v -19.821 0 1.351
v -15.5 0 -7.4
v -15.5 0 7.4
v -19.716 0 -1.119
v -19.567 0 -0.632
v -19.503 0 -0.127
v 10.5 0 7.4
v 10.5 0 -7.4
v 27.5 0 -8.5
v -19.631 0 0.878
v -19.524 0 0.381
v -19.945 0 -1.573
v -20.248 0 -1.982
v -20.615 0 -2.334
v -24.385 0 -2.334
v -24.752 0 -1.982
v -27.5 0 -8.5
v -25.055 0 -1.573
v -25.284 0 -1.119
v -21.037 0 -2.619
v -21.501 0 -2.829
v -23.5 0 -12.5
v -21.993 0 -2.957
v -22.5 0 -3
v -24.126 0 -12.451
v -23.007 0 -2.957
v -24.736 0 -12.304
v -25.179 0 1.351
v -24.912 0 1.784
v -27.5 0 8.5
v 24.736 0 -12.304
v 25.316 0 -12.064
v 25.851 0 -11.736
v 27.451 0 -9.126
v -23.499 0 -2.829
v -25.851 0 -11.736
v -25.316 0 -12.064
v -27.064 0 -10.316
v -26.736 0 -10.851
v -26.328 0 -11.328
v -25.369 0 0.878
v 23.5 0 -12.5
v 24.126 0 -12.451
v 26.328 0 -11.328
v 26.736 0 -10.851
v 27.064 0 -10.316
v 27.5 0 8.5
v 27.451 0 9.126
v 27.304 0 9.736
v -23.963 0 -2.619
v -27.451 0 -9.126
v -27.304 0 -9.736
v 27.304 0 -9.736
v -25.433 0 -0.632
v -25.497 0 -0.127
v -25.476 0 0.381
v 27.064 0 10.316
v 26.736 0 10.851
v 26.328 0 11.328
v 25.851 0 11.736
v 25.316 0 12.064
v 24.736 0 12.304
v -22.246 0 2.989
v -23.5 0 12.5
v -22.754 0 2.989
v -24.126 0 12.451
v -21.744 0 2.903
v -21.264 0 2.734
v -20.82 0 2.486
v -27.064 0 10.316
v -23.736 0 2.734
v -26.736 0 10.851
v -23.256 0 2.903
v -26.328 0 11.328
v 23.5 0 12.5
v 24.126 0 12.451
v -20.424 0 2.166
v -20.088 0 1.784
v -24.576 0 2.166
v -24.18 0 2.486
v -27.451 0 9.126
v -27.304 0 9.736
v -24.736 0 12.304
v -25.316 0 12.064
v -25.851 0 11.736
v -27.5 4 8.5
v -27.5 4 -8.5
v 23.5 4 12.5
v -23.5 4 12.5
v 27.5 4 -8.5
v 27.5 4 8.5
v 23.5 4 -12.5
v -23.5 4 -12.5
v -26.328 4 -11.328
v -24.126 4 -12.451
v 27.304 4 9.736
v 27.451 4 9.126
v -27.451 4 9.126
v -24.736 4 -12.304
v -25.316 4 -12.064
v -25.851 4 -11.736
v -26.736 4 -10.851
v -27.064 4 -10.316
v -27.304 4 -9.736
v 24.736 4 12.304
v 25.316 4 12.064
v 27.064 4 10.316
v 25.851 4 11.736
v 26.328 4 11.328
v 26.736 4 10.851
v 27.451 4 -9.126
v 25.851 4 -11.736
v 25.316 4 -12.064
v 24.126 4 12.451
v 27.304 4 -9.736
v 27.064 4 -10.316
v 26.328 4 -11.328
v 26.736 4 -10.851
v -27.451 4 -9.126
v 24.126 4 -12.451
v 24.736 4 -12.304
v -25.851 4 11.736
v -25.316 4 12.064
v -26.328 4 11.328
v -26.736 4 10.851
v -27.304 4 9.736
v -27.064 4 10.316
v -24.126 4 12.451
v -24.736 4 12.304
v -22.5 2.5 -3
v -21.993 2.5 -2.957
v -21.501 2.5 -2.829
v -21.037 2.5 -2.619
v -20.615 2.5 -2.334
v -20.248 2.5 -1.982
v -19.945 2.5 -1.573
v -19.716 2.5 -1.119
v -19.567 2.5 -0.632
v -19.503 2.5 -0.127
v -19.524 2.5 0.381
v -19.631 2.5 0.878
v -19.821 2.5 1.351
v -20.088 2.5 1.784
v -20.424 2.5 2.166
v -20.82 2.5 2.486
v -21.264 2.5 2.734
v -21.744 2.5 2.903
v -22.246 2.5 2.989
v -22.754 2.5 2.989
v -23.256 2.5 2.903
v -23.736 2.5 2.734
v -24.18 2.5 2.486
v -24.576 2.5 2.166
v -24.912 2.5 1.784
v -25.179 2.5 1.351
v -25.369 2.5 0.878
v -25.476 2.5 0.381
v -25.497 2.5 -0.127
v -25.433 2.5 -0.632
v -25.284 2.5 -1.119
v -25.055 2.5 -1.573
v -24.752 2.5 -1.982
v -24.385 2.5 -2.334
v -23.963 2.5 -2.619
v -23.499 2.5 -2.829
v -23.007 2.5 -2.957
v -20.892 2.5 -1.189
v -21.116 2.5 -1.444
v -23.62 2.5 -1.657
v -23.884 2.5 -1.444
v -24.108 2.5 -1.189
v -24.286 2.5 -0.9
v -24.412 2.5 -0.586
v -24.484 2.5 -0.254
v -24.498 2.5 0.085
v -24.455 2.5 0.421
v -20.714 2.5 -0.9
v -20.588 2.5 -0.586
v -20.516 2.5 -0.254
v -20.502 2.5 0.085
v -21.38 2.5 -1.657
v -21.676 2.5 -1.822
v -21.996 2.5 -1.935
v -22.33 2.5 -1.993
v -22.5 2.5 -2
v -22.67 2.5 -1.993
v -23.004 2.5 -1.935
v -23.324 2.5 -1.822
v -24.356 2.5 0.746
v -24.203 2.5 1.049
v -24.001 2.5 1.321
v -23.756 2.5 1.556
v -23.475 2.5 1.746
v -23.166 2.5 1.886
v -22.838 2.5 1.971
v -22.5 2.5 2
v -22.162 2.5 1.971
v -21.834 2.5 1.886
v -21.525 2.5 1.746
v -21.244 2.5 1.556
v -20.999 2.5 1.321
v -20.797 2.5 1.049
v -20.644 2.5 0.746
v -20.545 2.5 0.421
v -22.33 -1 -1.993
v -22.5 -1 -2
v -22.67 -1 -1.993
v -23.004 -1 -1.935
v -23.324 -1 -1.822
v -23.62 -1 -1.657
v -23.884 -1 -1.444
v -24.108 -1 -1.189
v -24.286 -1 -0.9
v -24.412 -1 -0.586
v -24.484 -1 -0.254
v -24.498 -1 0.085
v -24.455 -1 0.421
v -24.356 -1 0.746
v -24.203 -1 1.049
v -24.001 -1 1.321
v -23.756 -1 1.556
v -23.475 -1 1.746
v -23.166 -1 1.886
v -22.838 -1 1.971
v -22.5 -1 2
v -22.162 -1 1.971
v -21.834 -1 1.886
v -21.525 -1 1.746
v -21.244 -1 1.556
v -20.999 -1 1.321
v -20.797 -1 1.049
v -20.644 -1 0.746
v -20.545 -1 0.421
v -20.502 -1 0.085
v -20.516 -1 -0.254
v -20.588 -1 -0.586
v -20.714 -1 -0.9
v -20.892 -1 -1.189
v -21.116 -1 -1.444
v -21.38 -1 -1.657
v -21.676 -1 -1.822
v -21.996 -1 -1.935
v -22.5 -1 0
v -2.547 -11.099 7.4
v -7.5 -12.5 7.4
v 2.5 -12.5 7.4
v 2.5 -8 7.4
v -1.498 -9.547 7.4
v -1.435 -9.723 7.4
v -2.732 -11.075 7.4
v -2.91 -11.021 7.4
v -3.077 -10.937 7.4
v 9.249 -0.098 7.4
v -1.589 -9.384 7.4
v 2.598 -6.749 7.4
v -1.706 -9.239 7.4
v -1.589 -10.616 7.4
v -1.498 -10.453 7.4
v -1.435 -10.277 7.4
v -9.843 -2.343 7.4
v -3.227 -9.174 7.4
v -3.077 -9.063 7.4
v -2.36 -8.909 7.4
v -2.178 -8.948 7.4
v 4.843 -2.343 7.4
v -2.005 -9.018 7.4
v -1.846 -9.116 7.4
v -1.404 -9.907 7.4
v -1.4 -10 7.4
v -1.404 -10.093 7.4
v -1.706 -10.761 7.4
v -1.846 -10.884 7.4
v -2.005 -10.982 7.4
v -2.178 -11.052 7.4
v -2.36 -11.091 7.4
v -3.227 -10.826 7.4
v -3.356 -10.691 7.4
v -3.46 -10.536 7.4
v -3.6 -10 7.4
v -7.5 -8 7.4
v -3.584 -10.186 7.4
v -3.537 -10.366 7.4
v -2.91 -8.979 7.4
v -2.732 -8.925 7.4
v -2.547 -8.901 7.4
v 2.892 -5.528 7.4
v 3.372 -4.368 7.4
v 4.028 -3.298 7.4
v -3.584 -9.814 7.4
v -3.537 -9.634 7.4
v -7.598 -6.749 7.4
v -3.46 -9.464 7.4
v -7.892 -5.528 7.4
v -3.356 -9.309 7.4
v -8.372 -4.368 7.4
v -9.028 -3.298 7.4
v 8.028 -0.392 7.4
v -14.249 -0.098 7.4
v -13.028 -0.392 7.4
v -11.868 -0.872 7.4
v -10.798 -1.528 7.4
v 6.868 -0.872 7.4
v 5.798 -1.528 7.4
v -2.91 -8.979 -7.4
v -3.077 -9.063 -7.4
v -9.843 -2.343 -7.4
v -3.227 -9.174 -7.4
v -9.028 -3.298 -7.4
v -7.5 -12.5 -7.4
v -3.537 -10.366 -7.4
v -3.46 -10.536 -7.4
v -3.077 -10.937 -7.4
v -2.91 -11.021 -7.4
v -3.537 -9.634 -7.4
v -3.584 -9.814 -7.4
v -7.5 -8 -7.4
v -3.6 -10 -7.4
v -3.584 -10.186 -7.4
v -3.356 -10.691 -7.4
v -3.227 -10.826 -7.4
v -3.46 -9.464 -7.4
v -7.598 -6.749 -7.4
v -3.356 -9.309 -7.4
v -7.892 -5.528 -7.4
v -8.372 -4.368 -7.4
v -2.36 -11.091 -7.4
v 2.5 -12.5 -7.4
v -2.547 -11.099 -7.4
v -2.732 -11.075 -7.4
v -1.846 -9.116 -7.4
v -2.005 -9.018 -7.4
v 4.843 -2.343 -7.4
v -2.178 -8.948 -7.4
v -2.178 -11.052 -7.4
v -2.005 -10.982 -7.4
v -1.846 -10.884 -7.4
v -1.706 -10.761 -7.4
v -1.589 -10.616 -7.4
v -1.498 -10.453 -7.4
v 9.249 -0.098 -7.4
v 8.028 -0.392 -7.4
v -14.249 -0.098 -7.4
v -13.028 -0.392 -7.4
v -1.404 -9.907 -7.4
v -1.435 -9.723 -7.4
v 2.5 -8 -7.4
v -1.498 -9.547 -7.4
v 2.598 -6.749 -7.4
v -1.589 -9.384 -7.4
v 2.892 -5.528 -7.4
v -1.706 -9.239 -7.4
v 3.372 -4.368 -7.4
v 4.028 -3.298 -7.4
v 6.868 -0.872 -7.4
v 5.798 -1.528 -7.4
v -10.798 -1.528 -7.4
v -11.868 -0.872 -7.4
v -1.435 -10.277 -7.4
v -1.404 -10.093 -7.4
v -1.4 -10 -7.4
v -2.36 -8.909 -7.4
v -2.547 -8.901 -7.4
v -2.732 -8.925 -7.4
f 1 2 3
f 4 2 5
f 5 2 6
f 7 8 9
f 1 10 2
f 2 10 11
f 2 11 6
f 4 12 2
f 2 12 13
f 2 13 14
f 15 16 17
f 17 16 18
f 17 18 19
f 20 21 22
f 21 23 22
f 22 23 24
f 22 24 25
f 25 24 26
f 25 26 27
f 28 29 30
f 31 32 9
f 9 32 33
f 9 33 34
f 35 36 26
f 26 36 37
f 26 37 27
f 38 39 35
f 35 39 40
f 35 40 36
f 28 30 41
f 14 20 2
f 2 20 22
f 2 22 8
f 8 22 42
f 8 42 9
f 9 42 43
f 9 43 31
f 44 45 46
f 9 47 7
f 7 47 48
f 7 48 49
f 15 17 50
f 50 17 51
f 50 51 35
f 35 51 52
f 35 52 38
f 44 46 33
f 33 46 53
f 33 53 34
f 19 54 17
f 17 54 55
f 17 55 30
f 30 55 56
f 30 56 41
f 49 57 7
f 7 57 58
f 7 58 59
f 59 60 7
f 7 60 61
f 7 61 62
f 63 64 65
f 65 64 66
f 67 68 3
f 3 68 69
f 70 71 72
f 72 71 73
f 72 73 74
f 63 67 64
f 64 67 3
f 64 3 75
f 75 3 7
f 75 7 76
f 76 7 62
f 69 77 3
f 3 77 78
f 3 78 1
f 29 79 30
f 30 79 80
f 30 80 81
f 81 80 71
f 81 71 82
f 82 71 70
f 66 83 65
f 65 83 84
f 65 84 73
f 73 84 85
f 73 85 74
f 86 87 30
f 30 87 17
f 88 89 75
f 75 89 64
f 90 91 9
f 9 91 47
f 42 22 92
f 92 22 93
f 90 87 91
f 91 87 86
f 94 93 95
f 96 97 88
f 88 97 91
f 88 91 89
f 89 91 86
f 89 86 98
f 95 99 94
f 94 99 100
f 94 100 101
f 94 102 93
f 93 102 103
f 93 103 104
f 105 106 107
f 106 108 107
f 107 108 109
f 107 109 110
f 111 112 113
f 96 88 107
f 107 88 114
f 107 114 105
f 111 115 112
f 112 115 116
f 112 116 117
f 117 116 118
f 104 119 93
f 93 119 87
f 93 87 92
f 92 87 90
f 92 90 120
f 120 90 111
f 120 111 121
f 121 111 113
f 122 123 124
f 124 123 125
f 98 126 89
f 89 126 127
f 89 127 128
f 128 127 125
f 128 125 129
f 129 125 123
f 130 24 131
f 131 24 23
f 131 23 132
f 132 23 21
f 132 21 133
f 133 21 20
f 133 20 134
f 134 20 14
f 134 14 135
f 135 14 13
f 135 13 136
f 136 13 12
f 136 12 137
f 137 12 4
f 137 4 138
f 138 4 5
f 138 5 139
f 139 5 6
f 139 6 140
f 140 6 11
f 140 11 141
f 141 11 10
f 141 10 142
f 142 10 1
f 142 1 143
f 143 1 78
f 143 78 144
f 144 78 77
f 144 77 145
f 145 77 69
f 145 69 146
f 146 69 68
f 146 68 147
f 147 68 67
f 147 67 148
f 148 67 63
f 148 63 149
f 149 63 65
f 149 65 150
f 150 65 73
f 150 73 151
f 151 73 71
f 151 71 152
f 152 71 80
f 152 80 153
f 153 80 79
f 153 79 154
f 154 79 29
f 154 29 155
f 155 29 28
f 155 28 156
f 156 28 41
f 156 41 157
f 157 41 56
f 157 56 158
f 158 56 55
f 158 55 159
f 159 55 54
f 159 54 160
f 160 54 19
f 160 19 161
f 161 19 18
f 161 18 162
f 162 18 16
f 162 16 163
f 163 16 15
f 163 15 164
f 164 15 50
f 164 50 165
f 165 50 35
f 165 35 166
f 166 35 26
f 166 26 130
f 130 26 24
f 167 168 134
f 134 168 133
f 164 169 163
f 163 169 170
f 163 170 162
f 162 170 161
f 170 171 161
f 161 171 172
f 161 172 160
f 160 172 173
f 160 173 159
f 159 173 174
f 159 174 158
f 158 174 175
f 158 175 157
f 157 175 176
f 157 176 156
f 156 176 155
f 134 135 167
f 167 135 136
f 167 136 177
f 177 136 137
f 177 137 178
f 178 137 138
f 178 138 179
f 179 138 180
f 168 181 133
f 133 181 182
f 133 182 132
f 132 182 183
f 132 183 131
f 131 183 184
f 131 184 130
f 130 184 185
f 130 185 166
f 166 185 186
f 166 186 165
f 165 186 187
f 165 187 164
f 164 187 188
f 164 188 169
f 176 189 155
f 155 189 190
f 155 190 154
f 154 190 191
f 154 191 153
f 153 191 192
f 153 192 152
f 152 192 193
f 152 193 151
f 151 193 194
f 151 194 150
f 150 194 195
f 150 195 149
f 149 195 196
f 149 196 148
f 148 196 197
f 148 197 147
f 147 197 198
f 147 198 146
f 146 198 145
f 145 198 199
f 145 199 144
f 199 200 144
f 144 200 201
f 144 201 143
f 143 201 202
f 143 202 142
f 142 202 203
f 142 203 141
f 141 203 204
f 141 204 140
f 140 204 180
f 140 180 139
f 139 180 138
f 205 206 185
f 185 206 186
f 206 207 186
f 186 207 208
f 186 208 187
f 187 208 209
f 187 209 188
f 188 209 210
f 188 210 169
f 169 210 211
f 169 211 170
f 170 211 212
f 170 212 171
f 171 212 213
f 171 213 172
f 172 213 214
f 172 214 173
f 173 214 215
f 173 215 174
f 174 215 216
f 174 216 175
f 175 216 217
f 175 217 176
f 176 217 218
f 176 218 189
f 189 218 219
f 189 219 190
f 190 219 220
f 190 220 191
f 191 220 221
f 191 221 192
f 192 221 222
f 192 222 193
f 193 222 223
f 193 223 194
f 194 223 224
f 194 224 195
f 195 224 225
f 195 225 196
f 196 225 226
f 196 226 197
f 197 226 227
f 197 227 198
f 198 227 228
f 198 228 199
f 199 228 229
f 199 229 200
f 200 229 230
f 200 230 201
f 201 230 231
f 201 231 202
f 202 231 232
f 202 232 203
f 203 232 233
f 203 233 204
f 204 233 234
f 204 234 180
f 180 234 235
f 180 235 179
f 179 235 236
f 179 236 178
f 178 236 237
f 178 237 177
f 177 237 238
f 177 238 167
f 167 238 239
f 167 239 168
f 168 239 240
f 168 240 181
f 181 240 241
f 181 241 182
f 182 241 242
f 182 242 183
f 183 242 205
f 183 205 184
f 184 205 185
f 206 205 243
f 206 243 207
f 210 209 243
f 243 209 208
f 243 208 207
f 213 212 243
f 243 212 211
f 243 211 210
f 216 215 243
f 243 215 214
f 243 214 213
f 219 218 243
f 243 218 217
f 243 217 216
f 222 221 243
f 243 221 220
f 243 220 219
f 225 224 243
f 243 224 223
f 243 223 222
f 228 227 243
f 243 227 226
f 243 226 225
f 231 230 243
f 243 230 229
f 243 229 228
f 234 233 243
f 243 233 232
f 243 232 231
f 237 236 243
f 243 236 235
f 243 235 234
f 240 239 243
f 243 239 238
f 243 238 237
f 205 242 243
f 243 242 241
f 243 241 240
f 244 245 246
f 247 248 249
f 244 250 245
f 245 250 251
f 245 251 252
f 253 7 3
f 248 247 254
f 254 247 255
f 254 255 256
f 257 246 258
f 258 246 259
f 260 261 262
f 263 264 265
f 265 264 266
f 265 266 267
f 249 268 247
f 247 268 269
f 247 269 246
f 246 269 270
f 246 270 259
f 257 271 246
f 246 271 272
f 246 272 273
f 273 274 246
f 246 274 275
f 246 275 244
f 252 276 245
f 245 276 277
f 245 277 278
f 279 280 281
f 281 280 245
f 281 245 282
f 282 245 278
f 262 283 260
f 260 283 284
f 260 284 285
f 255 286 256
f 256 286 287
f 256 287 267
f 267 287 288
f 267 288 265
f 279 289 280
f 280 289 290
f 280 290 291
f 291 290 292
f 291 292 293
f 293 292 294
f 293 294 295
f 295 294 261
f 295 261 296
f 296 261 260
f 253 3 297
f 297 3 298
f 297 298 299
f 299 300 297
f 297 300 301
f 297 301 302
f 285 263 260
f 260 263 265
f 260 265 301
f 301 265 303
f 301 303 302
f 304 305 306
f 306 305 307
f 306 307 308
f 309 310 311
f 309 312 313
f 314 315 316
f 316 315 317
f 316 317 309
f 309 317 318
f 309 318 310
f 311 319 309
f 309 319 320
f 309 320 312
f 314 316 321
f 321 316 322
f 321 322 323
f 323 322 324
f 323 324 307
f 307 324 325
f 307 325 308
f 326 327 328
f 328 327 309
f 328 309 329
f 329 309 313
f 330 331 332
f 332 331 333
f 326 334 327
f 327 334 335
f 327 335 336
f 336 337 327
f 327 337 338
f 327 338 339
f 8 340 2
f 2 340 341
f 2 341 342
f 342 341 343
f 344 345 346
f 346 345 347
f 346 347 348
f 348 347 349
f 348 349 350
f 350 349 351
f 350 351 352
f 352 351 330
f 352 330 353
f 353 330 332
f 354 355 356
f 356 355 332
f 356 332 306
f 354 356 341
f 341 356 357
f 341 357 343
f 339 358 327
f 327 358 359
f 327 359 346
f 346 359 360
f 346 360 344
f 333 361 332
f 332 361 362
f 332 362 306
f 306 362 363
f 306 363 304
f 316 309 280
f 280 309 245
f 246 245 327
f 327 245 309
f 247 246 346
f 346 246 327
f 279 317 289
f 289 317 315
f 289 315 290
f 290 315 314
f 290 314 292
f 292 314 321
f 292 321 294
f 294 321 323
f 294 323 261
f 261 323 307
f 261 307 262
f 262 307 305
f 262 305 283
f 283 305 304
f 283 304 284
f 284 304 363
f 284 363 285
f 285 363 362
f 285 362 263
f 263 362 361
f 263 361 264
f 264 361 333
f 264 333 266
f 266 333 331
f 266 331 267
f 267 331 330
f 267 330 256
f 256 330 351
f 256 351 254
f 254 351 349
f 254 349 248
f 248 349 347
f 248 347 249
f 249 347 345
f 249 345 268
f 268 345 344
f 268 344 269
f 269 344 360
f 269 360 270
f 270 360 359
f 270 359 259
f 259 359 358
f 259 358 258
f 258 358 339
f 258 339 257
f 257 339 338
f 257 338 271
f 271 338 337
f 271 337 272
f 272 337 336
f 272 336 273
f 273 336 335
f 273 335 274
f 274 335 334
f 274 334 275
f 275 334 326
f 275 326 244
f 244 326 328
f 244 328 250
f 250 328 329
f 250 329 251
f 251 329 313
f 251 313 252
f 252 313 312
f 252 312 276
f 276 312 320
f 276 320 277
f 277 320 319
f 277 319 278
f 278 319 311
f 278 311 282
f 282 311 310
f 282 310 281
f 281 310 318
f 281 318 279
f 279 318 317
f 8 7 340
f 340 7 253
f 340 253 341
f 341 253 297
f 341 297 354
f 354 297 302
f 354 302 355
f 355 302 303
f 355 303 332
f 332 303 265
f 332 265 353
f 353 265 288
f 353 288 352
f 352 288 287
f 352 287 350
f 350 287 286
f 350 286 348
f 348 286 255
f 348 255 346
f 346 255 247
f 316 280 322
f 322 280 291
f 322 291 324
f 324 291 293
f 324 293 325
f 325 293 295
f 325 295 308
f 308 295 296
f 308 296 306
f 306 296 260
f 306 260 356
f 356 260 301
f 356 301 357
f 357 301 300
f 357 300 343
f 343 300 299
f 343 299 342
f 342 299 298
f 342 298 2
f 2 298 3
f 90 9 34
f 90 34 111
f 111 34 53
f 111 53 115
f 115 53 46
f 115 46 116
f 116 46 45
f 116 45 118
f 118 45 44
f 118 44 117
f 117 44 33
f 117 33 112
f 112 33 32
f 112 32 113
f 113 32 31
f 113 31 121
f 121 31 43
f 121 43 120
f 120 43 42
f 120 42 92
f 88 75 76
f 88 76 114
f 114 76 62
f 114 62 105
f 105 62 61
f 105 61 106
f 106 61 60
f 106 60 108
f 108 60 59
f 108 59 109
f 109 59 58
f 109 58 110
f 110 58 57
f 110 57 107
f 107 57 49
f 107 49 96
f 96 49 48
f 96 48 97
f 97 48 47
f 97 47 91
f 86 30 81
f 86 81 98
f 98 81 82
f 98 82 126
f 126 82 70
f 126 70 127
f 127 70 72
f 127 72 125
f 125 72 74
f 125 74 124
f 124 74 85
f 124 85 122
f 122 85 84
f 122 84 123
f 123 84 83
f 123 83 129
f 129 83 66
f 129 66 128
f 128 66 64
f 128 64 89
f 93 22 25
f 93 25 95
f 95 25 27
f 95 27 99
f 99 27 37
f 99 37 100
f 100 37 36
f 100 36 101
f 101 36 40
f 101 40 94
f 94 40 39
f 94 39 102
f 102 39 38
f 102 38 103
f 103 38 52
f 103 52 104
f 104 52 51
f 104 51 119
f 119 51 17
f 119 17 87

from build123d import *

# Parameters (mm, degrees)
SKETCH_1_W          = 55
SKETCH_1_H          = 25
EXTRUDE_1_DEPTH     = 4
SKETCH_2_R          = 3
CUT_EXTRUDE_1_DEPTH = 2.5
SKETCH_3_R          = 2
EXTRUDE_2_DEPTH     = 3.5
SKETCH_5_W          = 10
SKETCH_5_H          = 12.5
SKETCH_5_R          = 1.1
EXTRUDE_3_DEPTH     = 7.4
FILLET_1_R          = 8
FILLET_2_R          = 4


with BuildPart() as part:
    # 草图1 → 凸台-拉伸1 (new body)
    with BuildSketch(Plane(origin=(0, 0, 0), x_dir=(1, 0, 0), z_dir=(0, 1, 0))):
        Rectangle(SKETCH_1_W, SKETCH_1_H)
    extrude(amount=EXTRUDE_1_DEPTH)

    # 草图2 → 切除-拉伸1 (cut)
    with BuildSketch(Plane.XZ):
        with Locations(Location((-22.5, 0, 0), (0, 0, 270))):
            Circle(SKETCH_2_R)
    extrude(amount=-CUT_EXTRUDE_1_DEPTH, mode=Mode.SUBTRACT)

    # 草图3 → 凸台-拉伸2 (add)
    with BuildSketch(Plane.XZ.offset(-2.5)):
        with Locations(Location((-22.5, 0, 0), (0, 0, 270))):
            Circle(SKETCH_3_R)
    extrude(amount=EXTRUDE_2_DEPTH)

    # 草图5 → 凸台-拉伸3 (add, symmetric)
    with BuildSketch(Plane.XY):
        with Locations((-2.5, -6.25)):
            Rectangle(SKETCH_5_W, SKETCH_5_H)
        with Locations((-2.5, -10)):
            Circle(SKETCH_5_R, mode=Mode.SUBTRACT)
    extrude(amount=EXTRUDE_3_DEPTH, both=True)

    # 圆角1
    fillet_1_edges = [part.edges().sort_by_distance(p)[0] for p in [
        (2.5, 0, 0),
        (-7.5, 0, 0),
    ]]
    fillet(fillet_1_edges, radius=FILLET_1_R)

    # 圆角2
    fillet_2_edges = [part.edges().sort_by_distance(p)[0] for p in [
        (-27.5, 2, -12.5),
        (27.5, 2, -12.5),
        (27.5, 2, 12.5),
        (-27.5, 2, 12.5),
    ]]
    fillet(fillet_2_edges, radius=FILLET_2_R)


solid = part.part
